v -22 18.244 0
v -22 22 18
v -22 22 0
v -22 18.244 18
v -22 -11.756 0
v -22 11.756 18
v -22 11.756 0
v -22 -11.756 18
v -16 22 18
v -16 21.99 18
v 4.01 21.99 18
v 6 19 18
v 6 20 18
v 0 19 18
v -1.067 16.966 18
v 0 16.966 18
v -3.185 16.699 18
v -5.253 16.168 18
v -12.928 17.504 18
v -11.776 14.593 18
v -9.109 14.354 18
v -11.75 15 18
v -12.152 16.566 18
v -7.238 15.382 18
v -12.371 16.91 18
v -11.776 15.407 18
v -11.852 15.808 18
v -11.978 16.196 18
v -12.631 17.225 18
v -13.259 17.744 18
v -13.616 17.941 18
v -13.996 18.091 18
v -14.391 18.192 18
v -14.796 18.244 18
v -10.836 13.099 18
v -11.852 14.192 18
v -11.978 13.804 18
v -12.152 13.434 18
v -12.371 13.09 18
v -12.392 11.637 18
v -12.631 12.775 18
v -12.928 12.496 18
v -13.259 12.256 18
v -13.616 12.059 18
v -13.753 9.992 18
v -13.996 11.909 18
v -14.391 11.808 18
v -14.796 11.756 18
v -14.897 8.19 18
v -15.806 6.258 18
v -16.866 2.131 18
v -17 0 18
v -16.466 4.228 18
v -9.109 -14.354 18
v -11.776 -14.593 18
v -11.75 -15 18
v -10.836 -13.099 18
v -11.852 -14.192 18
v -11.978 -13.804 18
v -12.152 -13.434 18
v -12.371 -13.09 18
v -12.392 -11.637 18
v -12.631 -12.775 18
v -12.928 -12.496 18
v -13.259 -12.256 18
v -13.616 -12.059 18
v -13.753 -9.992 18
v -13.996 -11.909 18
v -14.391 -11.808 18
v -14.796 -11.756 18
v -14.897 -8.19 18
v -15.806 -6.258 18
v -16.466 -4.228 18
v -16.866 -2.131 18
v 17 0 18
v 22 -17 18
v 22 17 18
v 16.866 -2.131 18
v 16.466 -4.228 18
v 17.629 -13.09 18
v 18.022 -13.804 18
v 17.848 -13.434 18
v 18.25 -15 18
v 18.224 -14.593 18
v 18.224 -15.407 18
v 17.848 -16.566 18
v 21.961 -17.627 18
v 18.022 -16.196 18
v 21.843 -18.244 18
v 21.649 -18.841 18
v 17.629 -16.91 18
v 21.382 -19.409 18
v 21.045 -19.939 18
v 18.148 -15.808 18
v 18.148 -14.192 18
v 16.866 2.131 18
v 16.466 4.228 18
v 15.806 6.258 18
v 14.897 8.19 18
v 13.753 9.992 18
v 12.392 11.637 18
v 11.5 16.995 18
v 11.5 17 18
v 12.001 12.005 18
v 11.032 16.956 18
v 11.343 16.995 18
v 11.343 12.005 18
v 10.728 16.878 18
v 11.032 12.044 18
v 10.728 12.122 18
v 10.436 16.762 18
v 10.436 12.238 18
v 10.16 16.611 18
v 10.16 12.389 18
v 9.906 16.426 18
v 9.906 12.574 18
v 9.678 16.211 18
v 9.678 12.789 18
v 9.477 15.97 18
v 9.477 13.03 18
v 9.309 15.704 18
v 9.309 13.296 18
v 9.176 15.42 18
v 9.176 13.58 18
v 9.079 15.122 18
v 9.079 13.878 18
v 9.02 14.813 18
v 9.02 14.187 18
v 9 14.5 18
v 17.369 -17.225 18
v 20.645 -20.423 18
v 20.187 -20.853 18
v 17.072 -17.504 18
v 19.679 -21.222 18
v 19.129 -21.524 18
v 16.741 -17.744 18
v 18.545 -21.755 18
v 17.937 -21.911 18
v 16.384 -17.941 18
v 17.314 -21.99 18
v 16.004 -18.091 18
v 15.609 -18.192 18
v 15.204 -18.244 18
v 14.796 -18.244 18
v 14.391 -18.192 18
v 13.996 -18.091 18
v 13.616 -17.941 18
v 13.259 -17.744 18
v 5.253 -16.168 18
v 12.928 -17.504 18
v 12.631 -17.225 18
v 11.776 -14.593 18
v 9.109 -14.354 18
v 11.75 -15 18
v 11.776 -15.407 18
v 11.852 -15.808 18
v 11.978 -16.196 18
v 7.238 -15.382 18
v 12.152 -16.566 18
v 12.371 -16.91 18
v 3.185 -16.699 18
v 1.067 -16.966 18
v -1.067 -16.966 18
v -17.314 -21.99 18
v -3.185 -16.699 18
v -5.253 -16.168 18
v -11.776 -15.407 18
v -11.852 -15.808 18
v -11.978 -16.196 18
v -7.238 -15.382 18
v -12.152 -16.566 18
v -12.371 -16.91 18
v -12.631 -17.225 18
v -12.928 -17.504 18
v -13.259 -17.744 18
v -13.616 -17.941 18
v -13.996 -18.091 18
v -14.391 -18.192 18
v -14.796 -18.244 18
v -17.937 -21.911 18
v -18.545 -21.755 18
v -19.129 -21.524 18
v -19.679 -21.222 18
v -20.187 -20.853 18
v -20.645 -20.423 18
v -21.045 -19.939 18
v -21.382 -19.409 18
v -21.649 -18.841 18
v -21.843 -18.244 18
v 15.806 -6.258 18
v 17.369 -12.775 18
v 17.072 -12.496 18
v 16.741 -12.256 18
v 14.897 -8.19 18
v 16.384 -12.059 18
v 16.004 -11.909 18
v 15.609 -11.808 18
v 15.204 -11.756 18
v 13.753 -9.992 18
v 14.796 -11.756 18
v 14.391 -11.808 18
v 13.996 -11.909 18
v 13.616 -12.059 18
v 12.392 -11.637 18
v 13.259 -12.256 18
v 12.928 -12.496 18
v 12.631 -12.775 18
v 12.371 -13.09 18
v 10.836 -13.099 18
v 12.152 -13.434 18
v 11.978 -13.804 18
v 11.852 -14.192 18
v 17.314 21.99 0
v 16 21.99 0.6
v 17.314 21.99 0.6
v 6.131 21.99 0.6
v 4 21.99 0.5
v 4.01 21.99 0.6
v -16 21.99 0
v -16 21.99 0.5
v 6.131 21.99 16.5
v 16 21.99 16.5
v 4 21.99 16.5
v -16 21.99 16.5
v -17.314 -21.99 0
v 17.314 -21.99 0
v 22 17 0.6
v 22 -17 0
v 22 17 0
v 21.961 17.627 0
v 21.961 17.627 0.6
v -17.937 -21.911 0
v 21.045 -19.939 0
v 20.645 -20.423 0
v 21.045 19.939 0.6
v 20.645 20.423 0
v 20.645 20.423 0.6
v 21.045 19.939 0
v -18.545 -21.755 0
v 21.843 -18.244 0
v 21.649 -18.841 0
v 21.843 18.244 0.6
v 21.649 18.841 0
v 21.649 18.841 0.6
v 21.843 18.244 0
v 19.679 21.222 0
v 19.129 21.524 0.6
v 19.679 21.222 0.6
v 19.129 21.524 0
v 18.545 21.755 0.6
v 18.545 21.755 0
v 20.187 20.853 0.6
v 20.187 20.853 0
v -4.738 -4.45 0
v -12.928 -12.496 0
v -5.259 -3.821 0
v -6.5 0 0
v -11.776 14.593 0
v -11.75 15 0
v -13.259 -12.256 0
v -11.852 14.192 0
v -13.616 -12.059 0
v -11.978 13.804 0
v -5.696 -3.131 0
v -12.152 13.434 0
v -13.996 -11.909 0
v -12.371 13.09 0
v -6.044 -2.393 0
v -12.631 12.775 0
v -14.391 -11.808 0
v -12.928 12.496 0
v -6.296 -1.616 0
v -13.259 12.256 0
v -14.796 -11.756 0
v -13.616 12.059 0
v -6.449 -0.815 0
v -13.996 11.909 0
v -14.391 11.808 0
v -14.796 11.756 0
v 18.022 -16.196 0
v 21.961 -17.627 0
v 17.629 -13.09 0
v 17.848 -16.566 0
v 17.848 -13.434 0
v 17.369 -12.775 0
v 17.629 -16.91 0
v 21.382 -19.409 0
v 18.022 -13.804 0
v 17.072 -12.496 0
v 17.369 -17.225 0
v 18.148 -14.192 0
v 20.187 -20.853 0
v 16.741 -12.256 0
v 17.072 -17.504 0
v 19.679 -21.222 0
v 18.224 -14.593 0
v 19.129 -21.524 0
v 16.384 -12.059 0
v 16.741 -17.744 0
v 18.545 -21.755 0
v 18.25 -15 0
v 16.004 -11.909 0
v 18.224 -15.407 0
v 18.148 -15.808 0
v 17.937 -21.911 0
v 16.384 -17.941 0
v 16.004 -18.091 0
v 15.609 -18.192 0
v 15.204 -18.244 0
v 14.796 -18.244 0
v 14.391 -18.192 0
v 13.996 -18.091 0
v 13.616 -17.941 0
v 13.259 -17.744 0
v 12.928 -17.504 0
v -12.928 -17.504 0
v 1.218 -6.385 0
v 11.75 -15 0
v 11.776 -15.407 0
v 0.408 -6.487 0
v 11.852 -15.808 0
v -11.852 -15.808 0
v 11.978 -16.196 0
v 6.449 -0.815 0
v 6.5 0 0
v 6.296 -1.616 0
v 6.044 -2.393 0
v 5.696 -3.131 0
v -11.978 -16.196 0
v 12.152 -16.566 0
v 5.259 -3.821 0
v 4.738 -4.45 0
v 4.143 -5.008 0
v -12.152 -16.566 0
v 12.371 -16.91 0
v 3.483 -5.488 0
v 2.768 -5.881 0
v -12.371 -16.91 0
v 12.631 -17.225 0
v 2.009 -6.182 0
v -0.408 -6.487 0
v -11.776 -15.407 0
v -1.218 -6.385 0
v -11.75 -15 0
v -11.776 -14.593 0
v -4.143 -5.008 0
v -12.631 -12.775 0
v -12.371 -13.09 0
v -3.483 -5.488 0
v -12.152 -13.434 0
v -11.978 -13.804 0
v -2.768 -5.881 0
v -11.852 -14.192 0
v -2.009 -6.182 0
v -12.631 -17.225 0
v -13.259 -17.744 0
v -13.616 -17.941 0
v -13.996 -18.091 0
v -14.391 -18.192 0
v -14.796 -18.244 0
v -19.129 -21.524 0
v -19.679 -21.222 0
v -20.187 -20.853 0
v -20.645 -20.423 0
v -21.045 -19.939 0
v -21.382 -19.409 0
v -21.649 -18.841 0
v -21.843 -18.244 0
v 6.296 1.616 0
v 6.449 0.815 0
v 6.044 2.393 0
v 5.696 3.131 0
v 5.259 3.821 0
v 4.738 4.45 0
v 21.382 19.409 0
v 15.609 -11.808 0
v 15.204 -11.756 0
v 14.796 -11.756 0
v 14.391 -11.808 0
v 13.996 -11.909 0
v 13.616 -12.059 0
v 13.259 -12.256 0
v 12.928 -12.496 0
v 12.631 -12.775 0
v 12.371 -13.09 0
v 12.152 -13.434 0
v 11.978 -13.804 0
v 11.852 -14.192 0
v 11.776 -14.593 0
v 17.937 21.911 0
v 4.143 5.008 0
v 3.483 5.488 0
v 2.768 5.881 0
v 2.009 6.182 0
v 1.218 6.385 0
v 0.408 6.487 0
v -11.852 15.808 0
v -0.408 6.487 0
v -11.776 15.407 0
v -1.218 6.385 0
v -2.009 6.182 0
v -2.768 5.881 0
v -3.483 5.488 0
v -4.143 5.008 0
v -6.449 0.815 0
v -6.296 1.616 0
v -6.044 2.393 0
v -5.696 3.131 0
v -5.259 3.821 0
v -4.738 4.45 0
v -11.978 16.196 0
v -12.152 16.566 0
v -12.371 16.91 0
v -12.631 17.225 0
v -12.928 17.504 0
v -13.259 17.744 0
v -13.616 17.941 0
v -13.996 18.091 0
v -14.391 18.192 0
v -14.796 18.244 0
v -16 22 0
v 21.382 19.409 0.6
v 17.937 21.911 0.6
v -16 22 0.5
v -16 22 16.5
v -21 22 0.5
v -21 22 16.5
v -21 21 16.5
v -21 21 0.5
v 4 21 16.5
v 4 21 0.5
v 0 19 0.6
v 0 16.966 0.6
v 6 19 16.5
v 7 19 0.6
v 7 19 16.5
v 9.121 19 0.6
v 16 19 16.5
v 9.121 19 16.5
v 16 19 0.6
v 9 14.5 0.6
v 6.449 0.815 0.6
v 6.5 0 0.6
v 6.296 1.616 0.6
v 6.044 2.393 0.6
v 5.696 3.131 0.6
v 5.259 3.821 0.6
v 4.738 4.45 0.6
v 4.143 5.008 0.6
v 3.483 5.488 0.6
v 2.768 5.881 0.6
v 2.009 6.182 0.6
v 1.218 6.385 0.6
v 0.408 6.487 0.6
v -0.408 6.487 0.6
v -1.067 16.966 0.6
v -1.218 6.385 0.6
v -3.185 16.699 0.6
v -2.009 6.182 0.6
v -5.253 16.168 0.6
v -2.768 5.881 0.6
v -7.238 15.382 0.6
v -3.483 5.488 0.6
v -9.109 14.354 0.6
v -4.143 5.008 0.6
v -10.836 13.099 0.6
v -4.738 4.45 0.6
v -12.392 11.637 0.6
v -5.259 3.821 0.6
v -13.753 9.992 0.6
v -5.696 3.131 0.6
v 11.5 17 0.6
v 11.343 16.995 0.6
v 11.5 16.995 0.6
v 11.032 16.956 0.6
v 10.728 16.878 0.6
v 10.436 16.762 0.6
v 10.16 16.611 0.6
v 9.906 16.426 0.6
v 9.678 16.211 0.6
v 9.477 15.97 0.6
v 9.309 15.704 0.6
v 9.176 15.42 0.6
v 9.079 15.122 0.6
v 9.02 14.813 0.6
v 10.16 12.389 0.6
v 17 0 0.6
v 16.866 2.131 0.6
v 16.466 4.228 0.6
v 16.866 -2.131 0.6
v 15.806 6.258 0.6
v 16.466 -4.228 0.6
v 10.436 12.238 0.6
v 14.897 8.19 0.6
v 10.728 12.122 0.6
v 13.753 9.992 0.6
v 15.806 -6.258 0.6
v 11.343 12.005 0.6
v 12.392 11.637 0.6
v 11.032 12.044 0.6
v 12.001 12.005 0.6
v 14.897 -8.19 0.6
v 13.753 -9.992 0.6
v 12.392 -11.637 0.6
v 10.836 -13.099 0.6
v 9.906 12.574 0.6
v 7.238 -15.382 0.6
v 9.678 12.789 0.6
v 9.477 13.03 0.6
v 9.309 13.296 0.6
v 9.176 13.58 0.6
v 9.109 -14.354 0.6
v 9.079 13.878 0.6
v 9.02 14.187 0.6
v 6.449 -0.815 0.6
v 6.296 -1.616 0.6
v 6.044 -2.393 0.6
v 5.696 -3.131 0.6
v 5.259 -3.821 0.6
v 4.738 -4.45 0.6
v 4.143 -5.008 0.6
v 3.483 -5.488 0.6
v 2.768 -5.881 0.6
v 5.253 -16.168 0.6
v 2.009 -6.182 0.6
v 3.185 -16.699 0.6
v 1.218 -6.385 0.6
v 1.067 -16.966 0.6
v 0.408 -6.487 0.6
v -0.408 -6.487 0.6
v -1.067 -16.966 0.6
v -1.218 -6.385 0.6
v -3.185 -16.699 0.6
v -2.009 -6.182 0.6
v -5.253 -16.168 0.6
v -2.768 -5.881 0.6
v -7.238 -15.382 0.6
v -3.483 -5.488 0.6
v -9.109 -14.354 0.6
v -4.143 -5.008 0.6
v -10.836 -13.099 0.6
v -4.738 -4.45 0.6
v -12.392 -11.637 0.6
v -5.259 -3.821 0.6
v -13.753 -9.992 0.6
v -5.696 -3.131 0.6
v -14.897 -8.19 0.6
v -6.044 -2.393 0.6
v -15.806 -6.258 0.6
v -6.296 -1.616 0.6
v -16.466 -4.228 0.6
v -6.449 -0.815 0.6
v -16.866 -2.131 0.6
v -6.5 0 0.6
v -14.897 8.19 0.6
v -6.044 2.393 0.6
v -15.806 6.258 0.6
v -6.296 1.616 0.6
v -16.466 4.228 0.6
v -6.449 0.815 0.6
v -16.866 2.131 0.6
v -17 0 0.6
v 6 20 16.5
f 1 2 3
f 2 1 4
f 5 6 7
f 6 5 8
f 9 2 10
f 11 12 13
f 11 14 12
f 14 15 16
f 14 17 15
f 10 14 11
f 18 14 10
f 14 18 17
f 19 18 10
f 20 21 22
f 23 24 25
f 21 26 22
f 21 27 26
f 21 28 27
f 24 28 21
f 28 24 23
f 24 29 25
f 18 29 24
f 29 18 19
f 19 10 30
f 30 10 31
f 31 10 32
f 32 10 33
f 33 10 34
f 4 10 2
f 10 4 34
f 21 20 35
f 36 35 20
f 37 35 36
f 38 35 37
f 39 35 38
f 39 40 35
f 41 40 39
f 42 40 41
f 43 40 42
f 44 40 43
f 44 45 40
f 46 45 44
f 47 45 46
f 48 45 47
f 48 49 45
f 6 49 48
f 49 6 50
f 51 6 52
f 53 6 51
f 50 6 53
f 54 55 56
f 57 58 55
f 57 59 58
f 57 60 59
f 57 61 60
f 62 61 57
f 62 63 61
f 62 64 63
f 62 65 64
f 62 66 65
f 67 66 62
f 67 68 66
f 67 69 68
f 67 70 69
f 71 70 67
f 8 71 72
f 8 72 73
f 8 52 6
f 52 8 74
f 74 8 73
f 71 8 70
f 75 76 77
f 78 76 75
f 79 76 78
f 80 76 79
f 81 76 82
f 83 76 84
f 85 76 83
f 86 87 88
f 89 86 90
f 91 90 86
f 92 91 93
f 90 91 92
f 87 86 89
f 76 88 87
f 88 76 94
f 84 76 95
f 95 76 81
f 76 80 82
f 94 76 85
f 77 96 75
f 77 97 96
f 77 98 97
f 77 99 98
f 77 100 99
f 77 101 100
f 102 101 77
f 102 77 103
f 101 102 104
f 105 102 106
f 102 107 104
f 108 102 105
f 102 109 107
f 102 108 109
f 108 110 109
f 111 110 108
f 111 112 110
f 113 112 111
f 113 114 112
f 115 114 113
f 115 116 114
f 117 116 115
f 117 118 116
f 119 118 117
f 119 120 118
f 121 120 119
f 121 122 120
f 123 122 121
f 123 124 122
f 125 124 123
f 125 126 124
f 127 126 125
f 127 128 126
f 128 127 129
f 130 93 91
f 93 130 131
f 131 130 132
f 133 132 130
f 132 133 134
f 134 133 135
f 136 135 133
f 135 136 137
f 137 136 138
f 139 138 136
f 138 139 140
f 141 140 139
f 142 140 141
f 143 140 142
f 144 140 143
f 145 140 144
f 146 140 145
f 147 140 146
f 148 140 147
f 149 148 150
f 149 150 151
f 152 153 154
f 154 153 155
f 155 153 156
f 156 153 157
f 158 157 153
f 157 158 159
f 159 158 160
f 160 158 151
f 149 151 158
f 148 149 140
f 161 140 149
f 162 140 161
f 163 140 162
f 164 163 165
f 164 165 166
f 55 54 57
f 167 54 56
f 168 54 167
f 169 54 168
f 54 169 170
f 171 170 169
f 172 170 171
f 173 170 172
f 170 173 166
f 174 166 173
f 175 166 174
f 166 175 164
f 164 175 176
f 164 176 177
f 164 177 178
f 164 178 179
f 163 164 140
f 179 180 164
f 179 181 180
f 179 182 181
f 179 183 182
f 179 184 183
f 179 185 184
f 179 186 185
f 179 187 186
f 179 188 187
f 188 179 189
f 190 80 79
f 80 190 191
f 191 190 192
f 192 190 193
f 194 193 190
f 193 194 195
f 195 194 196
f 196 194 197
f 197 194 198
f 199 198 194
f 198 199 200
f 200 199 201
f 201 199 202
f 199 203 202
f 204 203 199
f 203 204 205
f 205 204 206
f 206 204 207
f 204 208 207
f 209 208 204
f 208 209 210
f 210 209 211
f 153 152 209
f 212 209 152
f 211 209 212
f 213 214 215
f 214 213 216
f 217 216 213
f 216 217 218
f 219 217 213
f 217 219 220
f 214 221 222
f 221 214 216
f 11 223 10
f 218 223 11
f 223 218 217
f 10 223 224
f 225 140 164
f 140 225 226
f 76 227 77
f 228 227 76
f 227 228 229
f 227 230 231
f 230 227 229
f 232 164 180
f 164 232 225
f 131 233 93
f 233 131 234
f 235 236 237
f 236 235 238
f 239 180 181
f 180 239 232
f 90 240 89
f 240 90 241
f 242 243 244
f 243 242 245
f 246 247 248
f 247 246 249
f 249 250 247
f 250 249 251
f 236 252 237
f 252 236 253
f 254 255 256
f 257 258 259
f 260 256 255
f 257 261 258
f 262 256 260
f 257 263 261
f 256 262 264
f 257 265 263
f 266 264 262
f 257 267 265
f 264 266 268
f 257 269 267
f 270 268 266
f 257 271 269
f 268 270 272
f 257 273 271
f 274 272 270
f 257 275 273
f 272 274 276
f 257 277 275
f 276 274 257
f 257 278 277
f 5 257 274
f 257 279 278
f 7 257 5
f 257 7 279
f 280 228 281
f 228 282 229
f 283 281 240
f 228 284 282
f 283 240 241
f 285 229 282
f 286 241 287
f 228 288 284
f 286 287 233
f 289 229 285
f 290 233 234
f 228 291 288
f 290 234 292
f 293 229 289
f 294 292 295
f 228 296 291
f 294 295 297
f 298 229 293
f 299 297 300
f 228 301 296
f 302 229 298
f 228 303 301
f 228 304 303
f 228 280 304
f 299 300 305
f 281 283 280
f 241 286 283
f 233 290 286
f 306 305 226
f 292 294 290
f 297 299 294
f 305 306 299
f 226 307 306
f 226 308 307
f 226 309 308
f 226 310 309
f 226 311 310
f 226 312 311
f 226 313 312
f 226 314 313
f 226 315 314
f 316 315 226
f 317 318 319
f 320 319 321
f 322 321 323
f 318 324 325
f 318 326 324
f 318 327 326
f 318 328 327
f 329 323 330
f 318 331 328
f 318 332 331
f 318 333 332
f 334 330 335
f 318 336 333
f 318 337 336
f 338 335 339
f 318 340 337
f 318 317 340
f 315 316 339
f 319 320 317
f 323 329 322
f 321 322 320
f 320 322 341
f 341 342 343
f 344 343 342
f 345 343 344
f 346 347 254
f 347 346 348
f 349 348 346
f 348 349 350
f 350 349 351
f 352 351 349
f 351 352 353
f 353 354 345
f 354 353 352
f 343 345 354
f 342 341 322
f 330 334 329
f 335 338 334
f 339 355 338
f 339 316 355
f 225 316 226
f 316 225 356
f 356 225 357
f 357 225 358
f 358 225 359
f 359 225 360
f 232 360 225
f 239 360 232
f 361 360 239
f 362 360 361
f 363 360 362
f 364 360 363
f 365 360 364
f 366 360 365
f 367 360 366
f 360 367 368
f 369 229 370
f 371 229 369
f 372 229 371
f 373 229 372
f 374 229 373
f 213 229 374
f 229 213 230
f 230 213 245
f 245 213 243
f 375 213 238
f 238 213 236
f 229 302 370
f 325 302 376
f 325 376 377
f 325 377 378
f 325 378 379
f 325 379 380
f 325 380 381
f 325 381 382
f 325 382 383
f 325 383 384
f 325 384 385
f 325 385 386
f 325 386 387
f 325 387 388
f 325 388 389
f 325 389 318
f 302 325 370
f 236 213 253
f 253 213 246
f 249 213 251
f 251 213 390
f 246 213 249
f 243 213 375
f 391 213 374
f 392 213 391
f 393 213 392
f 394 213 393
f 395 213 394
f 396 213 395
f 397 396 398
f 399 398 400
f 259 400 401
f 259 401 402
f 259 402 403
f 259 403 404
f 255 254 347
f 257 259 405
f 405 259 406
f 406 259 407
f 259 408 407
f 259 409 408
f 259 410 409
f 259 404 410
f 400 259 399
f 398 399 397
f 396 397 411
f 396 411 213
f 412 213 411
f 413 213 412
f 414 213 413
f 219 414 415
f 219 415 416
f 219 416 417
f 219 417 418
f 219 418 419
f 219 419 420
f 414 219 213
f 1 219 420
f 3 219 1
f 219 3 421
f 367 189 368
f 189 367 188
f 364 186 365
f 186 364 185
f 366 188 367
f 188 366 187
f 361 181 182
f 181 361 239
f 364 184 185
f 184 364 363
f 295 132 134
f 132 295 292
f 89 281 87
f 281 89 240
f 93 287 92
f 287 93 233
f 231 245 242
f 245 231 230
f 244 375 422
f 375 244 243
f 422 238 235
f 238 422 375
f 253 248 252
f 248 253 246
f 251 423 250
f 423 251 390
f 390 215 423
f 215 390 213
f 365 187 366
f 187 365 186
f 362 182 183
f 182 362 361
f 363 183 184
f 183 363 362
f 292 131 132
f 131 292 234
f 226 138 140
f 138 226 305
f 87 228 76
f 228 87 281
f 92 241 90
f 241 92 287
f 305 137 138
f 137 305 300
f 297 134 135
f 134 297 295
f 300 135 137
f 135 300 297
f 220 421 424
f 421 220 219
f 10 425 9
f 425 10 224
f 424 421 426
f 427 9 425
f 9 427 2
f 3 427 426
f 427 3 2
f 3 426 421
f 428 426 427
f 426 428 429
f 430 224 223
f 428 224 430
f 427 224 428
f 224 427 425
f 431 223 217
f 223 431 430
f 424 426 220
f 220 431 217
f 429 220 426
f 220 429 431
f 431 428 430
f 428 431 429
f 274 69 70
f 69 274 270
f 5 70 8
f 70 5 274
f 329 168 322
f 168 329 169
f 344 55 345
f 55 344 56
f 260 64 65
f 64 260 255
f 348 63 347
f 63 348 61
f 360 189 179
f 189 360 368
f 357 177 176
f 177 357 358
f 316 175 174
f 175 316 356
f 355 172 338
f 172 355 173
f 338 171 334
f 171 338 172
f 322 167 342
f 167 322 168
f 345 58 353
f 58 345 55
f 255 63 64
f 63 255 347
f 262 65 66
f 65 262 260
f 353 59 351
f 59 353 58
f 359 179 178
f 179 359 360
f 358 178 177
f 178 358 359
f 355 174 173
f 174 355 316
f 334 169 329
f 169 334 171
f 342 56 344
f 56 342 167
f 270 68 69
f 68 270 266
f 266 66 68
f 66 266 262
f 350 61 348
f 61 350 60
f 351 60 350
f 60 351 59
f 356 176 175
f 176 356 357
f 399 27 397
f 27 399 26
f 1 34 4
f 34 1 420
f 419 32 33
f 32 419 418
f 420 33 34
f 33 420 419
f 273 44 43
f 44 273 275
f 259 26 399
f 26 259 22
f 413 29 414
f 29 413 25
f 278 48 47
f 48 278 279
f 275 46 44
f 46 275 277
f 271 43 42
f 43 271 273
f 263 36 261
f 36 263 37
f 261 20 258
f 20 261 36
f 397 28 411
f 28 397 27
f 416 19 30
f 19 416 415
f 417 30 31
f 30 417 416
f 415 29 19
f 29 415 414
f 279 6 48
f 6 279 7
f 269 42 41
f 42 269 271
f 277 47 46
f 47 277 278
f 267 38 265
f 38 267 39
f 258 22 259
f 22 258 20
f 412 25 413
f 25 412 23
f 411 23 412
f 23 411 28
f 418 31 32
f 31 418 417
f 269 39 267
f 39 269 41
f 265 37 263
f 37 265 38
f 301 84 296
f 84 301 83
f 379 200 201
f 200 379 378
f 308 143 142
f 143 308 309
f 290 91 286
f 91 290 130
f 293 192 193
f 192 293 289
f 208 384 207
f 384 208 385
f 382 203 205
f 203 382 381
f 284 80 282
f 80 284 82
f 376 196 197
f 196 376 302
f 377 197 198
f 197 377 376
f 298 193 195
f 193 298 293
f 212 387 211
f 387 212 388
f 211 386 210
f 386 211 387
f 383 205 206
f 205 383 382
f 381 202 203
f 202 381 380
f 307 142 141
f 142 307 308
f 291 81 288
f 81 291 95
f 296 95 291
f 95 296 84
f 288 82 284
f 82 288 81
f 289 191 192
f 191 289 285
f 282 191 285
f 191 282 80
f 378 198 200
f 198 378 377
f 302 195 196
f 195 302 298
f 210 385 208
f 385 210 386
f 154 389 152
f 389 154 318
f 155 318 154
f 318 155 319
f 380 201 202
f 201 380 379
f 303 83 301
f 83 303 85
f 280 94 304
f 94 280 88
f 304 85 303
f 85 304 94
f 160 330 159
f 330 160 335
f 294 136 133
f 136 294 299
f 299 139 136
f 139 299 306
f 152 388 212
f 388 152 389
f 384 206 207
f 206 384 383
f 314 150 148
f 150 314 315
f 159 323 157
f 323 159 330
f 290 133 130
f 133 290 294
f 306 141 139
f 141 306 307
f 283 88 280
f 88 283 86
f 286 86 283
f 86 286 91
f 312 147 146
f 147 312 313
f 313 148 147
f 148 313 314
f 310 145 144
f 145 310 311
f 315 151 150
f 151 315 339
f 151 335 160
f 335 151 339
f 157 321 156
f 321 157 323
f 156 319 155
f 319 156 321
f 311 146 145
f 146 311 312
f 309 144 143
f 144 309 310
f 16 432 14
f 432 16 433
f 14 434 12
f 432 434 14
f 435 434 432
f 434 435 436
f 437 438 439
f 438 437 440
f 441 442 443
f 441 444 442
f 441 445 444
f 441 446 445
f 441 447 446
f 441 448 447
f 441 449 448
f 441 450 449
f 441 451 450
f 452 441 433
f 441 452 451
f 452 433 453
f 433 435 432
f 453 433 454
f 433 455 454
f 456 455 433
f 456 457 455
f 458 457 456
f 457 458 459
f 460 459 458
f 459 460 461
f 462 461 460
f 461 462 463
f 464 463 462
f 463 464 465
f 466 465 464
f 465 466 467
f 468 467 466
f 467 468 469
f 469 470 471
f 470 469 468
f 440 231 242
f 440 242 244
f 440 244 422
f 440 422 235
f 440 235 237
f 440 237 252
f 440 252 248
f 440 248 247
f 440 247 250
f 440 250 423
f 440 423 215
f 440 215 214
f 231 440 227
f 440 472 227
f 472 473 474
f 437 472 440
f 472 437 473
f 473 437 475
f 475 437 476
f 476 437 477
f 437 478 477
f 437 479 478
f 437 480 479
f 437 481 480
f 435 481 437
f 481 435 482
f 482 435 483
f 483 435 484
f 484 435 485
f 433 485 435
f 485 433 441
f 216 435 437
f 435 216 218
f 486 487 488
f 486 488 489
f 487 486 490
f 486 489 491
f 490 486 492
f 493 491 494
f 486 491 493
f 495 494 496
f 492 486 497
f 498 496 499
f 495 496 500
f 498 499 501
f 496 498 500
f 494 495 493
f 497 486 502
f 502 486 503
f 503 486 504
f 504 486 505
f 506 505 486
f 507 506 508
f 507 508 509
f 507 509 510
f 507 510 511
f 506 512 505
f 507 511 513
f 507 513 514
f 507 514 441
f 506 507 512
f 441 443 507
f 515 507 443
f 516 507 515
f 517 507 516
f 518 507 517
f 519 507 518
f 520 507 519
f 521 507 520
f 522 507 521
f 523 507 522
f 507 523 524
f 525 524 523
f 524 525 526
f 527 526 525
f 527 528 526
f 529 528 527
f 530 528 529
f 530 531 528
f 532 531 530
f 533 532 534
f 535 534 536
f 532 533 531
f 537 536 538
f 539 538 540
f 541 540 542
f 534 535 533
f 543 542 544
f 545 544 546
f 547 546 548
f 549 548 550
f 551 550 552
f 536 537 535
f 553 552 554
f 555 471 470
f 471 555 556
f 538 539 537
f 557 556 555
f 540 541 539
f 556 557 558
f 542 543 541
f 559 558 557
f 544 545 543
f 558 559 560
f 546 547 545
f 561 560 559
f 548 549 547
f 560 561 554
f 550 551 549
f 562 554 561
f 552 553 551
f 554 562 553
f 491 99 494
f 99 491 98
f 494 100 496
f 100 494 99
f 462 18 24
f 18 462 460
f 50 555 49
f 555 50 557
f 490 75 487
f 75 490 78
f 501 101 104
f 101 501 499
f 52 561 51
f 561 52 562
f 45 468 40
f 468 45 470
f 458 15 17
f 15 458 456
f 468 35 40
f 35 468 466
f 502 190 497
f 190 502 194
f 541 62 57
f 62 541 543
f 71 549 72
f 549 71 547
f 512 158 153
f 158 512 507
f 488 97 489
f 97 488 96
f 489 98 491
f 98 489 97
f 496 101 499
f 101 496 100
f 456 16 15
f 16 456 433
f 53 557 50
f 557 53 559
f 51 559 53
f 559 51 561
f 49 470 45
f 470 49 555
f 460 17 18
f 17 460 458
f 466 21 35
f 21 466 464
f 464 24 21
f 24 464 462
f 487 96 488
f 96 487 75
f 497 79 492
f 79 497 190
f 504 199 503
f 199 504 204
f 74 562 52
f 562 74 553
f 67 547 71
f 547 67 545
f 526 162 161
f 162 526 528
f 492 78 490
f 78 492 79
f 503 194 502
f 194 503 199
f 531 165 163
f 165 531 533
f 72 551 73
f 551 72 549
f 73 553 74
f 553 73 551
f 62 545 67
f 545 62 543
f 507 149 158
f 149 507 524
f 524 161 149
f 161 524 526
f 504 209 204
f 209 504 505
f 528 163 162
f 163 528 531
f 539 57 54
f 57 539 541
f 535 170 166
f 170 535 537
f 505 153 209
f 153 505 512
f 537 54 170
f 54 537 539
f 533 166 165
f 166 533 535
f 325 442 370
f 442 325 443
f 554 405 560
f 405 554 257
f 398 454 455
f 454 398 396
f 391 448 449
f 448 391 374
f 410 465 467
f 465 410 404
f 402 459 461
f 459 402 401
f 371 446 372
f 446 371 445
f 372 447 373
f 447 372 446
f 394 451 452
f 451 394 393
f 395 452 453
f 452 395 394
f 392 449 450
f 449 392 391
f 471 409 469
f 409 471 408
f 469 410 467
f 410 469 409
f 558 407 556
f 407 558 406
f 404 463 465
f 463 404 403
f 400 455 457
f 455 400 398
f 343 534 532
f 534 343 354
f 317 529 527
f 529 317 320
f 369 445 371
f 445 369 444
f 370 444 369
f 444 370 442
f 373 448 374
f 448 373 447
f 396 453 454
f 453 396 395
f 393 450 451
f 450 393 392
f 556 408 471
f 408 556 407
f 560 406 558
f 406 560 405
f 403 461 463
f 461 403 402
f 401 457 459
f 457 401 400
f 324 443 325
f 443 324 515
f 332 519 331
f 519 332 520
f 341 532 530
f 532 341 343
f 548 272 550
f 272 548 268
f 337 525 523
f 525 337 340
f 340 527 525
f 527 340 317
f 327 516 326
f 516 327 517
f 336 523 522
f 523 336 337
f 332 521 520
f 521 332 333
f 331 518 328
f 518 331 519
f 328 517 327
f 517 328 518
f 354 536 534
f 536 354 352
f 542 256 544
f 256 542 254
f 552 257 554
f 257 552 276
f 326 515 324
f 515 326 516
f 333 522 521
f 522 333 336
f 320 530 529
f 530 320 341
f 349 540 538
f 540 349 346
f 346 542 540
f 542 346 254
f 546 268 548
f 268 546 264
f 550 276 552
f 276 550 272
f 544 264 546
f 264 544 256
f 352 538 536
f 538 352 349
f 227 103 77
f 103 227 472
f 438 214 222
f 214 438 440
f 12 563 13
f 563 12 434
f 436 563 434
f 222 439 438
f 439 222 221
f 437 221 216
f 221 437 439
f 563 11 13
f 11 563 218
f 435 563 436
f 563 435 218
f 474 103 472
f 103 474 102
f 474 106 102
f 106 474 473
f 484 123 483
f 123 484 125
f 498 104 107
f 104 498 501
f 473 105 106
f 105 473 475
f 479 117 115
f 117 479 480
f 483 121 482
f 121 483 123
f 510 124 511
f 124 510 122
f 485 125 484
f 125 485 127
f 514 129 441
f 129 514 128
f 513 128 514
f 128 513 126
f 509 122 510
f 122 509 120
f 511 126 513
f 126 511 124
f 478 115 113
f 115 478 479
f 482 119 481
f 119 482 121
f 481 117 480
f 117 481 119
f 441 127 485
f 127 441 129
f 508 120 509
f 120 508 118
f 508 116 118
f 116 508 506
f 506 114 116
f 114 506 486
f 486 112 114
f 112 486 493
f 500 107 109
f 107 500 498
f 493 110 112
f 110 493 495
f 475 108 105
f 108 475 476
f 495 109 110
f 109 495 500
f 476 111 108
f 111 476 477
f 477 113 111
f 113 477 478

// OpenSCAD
$fn = 50;


union() {
	difference() {
		union() {
			translate(v = [0, 0, 0]) {
				rotate(a = [0, 0, 0]) {
					hull() {
						translate(v = [-17.0000000000, 17.0000000000, 0]) {
							rotate(a = [0, 0, 0]) {
								translate(v = [0, 0, 0]) {
									rotate(a = [0, 0, 0]) {
										cylinder(h = 18, r = 5);
									}
								}
							}
						}
						translate(v = [17.0000000000, 17.0000000000, 0]) {
							rotate(a = [0, 0, 0]) {
								translate(v = [0, 0, 0]) {
									rotate(a = [0, 0, 0]) {
										cylinder(h = 18, r = 5);
									}
								}
							}
						}
						translate(v = [-17.0000000000, -17.0000000000, 0]) {
							rotate(a = [0, 0, 0]) {
								translate(v = [0, 0, 0]) {
									rotate(a = [0, 0, 0]) {
										cylinder(h = 18, r = 5);
									}
								}
							}
						}
						translate(v = [17.0000000000, -17.0000000000, 0]) {
							rotate(a = [0, 0, 0]) {
								translate(v = [0, 0, 0]) {
									rotate(a = [0, 0, 0]) {
										cylinder(h = 18, r = 5);
									}
								}
							}
						}
					}
				}
			}
			translate(v = [-22.0000000000, 16.0000000000, 0]) {
				rotate(a = [0, 0, 0]) {
					cube(size = [6, 6, 18]);
				}
			}
		}
		union() {
			#translate(v = [-21.0000000000, 21.0000000000, 0.5000000000]) {
				rotate(a = [0, 0, 0]) {
					cube(size = [25, 1, 16]);
				}
			}
			translate(v = [-22.5000000000, -15.0000000000, -125]) {
				rotate(a = [0, 0, 0]) {
					hull() {
						translate(v = [7.5000000000, 0, 0]) {
							rotate(a = [0, 0, 0]) {
								translate(v = [0, 0, 0]) {
									rotate(a = [0, 0, 0]) {
										cylinder(h = 250, r = 3.2500000000);
									}
								}
							}
						}
						translate(v = [-7.5000000000, 0, 0]) {
							rotate(a = [0, 0, 0]) {
								translate(v = [0, 0, 0]) {
									rotate(a = [0, 0, 0]) {
										cylinder(h = 250, r = 3.2500000000);
									}
								}
							}
						}
					}
				}
			}
			translate(v = [-22.5000000000, 15.0000000000, -125]) {
				rotate(a = [0, 0, 0]) {
					hull() {
						translate(v = [7.5000000000, 0, 0]) {
							rotate(a = [0, 0, 0]) {
								translate(v = [0, 0, 0]) {
									rotate(a = [0, 0, 0]) {
										cylinder(h = 250, r = 3.2500000000);
									}
								}
							}
						}
						translate(v = [-7.5000000000, 0, 0]) {
							rotate(a = [0, 0, 0]) {
								translate(v = [0, 0, 0]) {
									rotate(a = [0, 0, 0]) {
										cylinder(h = 250, r = 3.2500000000);
									}
								}
							}
						}
					}
				}
			}
			translate(v = [15.0000000000, -15.0000000000, -125.0000000000]) {
				rotate(a = [0, 0, 0]) {
					cylinder(h = 250, r = 3.2500000000);
				}
			}
			translate(v = [0.0000000000, 11.0000000000, 0.6000000000]) {
				rotate(a = [0, 0, 0]) {
					cube(size = [11, 8, 20.4000000000]);
				}
			}
			translate(v = [0, 0, 0.6000000000]) {
				rotate(a = [0, 0, 0]) {
					cylinder(h = 20.4000000000, r = 17.0000000000);
				}
			}
			translate(v = [0, 0, -9.0000000000]) {
				rotate(a = [0, 0, 0]) {
					cylinder(h = 18, r = 6.5000000000);
				}
			}
			translate(v = [0.0000000000, 17.0000000000, 0.6000000000]) {
				rotate(a = [0, 0, 0]) {
					cube(size = [22.0000000000, 2, 20.4000000000]);
				}
			}
			translate(v = [16.0000000000, 17.0000000000, 0.6000000000]) {
				rotate(a = [0, 0, 0]) {
					cube(size = [6, 5, 20.4000000000]);
				}
			}
			translate(v = [6.0000000000, 17.0000000000, 16.5000000000]) {
				rotate(a = [0, 0, 0]) {
					cube(size = [16, 5, 1.5000000000]);
				}
			}
			translate(v = [3.2500000000, 22.7500000000, 0.6000000000]) {
				rotate(a = [0, 0, -45]) {
					cube(size = [7.5000000000, 1.5000000000, 20.4000000000]);
				}
			}
			translate(v = [2.5000000000, 12.0000000000, 0.6000000000]) {
				rotate(a = [0, 0, 0]) {
					cube(size = [9.0000000000, 5, 17.4000000000]);
				}
			}
		}
	}
	union() {
		translate(v = [14, 14.5000000000, 0]) {
			rotate(a = [0, 0, 0]) {
				hull() {
					translate(v = [2.5000000000, 0, 0]) {
						rotate(a = [0, 0, 0]) {
							#translate(v = [0, 0, 0]) {
								rotate(a = [0, 0, 0]) {
									cylinder(h = 18, r = 2.5000000000);
								}
							}
						}
					}
					translate(v = [-2.5000000000, 0, 0]) {
						rotate(a = [0, 0, 0]) {
							#translate(v = [0, 0, 0]) {
								rotate(a = [0, 0, 0]) {
									cylinder(h = 18, r = 2.5000000000);
								}
							}
						}
					}
				}
			}
		}
	}
}
